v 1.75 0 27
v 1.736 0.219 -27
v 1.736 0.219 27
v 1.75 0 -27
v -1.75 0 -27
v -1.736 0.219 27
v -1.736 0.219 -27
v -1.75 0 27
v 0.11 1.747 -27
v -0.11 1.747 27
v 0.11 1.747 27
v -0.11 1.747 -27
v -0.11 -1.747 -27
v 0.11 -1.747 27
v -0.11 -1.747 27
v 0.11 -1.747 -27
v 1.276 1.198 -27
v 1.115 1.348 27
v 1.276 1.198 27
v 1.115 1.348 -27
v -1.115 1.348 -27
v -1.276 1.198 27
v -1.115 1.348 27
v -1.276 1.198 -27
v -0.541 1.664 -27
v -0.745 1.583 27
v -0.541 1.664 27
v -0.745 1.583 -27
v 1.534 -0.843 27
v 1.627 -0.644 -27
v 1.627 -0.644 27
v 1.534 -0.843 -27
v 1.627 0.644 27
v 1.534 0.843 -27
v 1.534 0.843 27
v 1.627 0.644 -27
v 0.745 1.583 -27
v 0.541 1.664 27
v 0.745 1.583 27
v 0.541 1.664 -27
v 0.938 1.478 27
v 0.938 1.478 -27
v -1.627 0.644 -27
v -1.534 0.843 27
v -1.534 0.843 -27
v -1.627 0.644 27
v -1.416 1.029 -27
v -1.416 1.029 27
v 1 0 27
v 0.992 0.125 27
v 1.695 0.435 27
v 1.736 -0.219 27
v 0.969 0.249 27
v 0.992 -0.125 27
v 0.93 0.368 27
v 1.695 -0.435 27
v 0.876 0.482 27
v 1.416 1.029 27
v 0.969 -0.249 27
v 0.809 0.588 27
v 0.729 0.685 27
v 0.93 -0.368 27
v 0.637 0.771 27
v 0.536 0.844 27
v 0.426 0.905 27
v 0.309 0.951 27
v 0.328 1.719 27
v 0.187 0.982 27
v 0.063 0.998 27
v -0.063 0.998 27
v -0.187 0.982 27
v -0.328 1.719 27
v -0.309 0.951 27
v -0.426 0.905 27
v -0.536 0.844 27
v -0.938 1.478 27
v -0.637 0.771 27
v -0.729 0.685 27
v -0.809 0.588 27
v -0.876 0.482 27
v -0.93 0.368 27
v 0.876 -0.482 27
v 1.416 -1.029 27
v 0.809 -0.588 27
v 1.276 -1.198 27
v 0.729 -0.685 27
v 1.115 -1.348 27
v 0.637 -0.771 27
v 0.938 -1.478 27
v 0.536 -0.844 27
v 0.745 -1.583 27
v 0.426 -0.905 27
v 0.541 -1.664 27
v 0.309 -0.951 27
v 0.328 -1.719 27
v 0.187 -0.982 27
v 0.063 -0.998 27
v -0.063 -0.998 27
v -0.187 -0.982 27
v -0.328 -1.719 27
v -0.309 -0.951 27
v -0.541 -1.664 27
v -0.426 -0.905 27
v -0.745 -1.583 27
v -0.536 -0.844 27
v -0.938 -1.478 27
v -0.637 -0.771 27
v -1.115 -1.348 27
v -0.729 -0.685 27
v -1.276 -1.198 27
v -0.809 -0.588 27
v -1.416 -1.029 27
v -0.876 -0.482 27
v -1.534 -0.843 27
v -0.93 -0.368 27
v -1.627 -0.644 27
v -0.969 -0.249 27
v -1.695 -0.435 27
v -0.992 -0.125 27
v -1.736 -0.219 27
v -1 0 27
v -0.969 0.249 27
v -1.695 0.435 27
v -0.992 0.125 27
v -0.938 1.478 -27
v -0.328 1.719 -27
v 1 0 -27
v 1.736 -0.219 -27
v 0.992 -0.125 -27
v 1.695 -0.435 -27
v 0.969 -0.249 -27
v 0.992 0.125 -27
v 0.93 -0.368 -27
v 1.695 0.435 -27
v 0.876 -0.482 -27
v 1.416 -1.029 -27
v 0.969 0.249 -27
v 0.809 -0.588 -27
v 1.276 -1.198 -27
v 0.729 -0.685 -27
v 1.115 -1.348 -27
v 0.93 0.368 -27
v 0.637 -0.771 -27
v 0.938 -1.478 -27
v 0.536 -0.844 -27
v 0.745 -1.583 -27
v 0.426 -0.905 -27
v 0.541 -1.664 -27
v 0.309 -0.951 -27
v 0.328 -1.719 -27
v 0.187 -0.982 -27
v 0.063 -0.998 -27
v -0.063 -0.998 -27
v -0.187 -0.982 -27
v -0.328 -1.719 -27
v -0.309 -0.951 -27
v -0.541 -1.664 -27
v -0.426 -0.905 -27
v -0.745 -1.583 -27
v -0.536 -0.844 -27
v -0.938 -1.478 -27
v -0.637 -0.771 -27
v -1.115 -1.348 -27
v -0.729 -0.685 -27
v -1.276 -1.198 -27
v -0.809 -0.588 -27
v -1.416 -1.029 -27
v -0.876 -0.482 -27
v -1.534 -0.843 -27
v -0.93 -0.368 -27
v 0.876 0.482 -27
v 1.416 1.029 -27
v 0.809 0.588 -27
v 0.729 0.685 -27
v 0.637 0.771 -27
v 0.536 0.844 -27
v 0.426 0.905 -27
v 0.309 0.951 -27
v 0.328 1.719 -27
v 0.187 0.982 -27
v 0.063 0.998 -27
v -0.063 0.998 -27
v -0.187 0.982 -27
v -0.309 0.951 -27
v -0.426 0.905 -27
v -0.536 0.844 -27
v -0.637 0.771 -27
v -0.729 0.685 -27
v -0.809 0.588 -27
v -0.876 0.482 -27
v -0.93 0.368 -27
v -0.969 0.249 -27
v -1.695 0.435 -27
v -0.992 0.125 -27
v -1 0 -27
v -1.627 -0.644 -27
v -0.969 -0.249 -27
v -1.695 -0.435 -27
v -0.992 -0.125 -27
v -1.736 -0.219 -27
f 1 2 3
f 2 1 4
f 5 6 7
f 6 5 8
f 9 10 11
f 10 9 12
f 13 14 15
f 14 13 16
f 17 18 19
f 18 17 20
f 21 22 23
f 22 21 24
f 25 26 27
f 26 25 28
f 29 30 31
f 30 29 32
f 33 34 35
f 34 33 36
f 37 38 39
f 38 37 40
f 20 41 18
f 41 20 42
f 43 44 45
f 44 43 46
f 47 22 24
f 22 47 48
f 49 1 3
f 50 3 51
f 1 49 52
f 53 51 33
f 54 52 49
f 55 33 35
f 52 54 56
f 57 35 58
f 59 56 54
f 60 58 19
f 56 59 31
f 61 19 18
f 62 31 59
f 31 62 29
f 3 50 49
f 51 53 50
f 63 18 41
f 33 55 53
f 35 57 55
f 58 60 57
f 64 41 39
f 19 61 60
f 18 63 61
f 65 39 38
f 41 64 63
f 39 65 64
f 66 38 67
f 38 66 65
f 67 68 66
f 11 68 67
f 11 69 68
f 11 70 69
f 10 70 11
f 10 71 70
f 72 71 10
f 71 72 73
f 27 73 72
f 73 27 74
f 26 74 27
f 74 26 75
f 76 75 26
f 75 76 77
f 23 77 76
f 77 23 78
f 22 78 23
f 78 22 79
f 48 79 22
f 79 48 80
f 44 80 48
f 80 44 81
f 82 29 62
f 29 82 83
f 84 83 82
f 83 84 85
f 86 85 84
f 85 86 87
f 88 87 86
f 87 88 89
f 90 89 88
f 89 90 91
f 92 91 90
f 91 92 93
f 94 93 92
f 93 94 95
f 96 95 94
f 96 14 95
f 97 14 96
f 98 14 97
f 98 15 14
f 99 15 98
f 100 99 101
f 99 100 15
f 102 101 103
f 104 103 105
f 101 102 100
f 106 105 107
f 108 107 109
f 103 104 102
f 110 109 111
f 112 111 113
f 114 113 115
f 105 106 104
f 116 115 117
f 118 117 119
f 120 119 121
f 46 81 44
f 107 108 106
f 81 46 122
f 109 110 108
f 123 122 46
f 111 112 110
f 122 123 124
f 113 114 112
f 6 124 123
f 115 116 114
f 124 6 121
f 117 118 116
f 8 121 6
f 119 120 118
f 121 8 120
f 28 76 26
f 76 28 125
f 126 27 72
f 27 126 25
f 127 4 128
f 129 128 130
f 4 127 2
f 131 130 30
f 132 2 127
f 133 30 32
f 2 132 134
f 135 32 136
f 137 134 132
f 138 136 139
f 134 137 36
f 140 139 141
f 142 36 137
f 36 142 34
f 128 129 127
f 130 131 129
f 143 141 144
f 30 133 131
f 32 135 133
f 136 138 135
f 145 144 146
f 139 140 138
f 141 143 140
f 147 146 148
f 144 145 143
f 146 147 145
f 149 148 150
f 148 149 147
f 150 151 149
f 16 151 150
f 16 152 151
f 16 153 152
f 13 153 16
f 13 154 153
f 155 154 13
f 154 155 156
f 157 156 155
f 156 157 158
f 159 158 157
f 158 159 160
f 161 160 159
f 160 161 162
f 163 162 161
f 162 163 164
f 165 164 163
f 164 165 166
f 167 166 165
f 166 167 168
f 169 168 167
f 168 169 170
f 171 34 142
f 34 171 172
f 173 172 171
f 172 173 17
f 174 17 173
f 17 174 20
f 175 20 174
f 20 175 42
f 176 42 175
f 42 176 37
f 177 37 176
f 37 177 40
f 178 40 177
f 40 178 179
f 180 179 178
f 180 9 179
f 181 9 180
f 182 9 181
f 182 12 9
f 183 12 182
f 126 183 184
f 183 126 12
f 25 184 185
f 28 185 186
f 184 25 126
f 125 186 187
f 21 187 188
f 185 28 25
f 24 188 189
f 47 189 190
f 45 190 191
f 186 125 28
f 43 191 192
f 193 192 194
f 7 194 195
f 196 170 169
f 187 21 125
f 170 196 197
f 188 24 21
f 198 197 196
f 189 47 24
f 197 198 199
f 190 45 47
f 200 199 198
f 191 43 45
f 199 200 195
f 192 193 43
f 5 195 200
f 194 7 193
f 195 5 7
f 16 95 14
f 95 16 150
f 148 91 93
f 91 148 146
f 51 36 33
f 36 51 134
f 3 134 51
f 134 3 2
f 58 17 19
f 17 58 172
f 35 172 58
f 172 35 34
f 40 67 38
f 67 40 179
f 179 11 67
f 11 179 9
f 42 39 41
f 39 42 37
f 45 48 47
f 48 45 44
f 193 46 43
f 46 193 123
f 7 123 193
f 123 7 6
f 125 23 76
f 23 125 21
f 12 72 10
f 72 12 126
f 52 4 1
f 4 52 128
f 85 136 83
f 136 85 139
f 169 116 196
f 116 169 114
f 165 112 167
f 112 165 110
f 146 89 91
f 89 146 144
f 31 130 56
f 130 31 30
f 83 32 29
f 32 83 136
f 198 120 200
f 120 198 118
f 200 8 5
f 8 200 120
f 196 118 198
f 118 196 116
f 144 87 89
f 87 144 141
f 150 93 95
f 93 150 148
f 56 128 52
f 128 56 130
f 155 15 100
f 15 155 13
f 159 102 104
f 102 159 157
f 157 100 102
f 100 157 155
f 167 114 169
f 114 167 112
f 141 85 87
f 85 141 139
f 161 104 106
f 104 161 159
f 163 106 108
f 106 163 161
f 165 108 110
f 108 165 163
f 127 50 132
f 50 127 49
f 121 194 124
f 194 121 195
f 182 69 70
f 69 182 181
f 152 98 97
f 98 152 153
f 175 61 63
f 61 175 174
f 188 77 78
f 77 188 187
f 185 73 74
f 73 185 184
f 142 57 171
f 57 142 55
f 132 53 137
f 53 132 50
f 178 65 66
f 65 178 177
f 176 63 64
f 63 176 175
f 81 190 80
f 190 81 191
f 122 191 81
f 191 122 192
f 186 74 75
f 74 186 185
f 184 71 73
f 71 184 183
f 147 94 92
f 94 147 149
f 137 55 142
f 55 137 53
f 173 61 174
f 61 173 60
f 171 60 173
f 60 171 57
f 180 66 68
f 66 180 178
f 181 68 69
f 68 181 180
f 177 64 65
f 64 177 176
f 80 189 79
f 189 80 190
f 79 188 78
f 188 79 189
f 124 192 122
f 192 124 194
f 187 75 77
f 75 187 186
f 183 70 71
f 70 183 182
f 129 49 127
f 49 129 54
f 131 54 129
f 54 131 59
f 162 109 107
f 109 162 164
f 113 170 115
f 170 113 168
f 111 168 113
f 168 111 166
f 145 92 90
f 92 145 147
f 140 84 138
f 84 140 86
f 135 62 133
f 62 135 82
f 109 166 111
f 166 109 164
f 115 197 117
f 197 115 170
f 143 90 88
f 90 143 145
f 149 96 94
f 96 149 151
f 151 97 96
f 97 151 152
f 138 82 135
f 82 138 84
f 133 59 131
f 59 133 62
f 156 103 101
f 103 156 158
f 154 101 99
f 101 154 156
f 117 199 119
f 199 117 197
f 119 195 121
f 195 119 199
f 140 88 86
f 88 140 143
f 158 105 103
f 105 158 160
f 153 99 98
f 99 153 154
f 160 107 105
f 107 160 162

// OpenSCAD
$fn = 50;


difference() {
	union() {
		translate(v = [0, 0, -27.0000000000]) {
			cylinder(h = 54, r = 1.7500000000);
		}
	}
	union() {
		translate(v = [0, 0, -100.0000000000]) {
			cylinder(h = 200, r = 1.0000000000);
		}
	}
}
